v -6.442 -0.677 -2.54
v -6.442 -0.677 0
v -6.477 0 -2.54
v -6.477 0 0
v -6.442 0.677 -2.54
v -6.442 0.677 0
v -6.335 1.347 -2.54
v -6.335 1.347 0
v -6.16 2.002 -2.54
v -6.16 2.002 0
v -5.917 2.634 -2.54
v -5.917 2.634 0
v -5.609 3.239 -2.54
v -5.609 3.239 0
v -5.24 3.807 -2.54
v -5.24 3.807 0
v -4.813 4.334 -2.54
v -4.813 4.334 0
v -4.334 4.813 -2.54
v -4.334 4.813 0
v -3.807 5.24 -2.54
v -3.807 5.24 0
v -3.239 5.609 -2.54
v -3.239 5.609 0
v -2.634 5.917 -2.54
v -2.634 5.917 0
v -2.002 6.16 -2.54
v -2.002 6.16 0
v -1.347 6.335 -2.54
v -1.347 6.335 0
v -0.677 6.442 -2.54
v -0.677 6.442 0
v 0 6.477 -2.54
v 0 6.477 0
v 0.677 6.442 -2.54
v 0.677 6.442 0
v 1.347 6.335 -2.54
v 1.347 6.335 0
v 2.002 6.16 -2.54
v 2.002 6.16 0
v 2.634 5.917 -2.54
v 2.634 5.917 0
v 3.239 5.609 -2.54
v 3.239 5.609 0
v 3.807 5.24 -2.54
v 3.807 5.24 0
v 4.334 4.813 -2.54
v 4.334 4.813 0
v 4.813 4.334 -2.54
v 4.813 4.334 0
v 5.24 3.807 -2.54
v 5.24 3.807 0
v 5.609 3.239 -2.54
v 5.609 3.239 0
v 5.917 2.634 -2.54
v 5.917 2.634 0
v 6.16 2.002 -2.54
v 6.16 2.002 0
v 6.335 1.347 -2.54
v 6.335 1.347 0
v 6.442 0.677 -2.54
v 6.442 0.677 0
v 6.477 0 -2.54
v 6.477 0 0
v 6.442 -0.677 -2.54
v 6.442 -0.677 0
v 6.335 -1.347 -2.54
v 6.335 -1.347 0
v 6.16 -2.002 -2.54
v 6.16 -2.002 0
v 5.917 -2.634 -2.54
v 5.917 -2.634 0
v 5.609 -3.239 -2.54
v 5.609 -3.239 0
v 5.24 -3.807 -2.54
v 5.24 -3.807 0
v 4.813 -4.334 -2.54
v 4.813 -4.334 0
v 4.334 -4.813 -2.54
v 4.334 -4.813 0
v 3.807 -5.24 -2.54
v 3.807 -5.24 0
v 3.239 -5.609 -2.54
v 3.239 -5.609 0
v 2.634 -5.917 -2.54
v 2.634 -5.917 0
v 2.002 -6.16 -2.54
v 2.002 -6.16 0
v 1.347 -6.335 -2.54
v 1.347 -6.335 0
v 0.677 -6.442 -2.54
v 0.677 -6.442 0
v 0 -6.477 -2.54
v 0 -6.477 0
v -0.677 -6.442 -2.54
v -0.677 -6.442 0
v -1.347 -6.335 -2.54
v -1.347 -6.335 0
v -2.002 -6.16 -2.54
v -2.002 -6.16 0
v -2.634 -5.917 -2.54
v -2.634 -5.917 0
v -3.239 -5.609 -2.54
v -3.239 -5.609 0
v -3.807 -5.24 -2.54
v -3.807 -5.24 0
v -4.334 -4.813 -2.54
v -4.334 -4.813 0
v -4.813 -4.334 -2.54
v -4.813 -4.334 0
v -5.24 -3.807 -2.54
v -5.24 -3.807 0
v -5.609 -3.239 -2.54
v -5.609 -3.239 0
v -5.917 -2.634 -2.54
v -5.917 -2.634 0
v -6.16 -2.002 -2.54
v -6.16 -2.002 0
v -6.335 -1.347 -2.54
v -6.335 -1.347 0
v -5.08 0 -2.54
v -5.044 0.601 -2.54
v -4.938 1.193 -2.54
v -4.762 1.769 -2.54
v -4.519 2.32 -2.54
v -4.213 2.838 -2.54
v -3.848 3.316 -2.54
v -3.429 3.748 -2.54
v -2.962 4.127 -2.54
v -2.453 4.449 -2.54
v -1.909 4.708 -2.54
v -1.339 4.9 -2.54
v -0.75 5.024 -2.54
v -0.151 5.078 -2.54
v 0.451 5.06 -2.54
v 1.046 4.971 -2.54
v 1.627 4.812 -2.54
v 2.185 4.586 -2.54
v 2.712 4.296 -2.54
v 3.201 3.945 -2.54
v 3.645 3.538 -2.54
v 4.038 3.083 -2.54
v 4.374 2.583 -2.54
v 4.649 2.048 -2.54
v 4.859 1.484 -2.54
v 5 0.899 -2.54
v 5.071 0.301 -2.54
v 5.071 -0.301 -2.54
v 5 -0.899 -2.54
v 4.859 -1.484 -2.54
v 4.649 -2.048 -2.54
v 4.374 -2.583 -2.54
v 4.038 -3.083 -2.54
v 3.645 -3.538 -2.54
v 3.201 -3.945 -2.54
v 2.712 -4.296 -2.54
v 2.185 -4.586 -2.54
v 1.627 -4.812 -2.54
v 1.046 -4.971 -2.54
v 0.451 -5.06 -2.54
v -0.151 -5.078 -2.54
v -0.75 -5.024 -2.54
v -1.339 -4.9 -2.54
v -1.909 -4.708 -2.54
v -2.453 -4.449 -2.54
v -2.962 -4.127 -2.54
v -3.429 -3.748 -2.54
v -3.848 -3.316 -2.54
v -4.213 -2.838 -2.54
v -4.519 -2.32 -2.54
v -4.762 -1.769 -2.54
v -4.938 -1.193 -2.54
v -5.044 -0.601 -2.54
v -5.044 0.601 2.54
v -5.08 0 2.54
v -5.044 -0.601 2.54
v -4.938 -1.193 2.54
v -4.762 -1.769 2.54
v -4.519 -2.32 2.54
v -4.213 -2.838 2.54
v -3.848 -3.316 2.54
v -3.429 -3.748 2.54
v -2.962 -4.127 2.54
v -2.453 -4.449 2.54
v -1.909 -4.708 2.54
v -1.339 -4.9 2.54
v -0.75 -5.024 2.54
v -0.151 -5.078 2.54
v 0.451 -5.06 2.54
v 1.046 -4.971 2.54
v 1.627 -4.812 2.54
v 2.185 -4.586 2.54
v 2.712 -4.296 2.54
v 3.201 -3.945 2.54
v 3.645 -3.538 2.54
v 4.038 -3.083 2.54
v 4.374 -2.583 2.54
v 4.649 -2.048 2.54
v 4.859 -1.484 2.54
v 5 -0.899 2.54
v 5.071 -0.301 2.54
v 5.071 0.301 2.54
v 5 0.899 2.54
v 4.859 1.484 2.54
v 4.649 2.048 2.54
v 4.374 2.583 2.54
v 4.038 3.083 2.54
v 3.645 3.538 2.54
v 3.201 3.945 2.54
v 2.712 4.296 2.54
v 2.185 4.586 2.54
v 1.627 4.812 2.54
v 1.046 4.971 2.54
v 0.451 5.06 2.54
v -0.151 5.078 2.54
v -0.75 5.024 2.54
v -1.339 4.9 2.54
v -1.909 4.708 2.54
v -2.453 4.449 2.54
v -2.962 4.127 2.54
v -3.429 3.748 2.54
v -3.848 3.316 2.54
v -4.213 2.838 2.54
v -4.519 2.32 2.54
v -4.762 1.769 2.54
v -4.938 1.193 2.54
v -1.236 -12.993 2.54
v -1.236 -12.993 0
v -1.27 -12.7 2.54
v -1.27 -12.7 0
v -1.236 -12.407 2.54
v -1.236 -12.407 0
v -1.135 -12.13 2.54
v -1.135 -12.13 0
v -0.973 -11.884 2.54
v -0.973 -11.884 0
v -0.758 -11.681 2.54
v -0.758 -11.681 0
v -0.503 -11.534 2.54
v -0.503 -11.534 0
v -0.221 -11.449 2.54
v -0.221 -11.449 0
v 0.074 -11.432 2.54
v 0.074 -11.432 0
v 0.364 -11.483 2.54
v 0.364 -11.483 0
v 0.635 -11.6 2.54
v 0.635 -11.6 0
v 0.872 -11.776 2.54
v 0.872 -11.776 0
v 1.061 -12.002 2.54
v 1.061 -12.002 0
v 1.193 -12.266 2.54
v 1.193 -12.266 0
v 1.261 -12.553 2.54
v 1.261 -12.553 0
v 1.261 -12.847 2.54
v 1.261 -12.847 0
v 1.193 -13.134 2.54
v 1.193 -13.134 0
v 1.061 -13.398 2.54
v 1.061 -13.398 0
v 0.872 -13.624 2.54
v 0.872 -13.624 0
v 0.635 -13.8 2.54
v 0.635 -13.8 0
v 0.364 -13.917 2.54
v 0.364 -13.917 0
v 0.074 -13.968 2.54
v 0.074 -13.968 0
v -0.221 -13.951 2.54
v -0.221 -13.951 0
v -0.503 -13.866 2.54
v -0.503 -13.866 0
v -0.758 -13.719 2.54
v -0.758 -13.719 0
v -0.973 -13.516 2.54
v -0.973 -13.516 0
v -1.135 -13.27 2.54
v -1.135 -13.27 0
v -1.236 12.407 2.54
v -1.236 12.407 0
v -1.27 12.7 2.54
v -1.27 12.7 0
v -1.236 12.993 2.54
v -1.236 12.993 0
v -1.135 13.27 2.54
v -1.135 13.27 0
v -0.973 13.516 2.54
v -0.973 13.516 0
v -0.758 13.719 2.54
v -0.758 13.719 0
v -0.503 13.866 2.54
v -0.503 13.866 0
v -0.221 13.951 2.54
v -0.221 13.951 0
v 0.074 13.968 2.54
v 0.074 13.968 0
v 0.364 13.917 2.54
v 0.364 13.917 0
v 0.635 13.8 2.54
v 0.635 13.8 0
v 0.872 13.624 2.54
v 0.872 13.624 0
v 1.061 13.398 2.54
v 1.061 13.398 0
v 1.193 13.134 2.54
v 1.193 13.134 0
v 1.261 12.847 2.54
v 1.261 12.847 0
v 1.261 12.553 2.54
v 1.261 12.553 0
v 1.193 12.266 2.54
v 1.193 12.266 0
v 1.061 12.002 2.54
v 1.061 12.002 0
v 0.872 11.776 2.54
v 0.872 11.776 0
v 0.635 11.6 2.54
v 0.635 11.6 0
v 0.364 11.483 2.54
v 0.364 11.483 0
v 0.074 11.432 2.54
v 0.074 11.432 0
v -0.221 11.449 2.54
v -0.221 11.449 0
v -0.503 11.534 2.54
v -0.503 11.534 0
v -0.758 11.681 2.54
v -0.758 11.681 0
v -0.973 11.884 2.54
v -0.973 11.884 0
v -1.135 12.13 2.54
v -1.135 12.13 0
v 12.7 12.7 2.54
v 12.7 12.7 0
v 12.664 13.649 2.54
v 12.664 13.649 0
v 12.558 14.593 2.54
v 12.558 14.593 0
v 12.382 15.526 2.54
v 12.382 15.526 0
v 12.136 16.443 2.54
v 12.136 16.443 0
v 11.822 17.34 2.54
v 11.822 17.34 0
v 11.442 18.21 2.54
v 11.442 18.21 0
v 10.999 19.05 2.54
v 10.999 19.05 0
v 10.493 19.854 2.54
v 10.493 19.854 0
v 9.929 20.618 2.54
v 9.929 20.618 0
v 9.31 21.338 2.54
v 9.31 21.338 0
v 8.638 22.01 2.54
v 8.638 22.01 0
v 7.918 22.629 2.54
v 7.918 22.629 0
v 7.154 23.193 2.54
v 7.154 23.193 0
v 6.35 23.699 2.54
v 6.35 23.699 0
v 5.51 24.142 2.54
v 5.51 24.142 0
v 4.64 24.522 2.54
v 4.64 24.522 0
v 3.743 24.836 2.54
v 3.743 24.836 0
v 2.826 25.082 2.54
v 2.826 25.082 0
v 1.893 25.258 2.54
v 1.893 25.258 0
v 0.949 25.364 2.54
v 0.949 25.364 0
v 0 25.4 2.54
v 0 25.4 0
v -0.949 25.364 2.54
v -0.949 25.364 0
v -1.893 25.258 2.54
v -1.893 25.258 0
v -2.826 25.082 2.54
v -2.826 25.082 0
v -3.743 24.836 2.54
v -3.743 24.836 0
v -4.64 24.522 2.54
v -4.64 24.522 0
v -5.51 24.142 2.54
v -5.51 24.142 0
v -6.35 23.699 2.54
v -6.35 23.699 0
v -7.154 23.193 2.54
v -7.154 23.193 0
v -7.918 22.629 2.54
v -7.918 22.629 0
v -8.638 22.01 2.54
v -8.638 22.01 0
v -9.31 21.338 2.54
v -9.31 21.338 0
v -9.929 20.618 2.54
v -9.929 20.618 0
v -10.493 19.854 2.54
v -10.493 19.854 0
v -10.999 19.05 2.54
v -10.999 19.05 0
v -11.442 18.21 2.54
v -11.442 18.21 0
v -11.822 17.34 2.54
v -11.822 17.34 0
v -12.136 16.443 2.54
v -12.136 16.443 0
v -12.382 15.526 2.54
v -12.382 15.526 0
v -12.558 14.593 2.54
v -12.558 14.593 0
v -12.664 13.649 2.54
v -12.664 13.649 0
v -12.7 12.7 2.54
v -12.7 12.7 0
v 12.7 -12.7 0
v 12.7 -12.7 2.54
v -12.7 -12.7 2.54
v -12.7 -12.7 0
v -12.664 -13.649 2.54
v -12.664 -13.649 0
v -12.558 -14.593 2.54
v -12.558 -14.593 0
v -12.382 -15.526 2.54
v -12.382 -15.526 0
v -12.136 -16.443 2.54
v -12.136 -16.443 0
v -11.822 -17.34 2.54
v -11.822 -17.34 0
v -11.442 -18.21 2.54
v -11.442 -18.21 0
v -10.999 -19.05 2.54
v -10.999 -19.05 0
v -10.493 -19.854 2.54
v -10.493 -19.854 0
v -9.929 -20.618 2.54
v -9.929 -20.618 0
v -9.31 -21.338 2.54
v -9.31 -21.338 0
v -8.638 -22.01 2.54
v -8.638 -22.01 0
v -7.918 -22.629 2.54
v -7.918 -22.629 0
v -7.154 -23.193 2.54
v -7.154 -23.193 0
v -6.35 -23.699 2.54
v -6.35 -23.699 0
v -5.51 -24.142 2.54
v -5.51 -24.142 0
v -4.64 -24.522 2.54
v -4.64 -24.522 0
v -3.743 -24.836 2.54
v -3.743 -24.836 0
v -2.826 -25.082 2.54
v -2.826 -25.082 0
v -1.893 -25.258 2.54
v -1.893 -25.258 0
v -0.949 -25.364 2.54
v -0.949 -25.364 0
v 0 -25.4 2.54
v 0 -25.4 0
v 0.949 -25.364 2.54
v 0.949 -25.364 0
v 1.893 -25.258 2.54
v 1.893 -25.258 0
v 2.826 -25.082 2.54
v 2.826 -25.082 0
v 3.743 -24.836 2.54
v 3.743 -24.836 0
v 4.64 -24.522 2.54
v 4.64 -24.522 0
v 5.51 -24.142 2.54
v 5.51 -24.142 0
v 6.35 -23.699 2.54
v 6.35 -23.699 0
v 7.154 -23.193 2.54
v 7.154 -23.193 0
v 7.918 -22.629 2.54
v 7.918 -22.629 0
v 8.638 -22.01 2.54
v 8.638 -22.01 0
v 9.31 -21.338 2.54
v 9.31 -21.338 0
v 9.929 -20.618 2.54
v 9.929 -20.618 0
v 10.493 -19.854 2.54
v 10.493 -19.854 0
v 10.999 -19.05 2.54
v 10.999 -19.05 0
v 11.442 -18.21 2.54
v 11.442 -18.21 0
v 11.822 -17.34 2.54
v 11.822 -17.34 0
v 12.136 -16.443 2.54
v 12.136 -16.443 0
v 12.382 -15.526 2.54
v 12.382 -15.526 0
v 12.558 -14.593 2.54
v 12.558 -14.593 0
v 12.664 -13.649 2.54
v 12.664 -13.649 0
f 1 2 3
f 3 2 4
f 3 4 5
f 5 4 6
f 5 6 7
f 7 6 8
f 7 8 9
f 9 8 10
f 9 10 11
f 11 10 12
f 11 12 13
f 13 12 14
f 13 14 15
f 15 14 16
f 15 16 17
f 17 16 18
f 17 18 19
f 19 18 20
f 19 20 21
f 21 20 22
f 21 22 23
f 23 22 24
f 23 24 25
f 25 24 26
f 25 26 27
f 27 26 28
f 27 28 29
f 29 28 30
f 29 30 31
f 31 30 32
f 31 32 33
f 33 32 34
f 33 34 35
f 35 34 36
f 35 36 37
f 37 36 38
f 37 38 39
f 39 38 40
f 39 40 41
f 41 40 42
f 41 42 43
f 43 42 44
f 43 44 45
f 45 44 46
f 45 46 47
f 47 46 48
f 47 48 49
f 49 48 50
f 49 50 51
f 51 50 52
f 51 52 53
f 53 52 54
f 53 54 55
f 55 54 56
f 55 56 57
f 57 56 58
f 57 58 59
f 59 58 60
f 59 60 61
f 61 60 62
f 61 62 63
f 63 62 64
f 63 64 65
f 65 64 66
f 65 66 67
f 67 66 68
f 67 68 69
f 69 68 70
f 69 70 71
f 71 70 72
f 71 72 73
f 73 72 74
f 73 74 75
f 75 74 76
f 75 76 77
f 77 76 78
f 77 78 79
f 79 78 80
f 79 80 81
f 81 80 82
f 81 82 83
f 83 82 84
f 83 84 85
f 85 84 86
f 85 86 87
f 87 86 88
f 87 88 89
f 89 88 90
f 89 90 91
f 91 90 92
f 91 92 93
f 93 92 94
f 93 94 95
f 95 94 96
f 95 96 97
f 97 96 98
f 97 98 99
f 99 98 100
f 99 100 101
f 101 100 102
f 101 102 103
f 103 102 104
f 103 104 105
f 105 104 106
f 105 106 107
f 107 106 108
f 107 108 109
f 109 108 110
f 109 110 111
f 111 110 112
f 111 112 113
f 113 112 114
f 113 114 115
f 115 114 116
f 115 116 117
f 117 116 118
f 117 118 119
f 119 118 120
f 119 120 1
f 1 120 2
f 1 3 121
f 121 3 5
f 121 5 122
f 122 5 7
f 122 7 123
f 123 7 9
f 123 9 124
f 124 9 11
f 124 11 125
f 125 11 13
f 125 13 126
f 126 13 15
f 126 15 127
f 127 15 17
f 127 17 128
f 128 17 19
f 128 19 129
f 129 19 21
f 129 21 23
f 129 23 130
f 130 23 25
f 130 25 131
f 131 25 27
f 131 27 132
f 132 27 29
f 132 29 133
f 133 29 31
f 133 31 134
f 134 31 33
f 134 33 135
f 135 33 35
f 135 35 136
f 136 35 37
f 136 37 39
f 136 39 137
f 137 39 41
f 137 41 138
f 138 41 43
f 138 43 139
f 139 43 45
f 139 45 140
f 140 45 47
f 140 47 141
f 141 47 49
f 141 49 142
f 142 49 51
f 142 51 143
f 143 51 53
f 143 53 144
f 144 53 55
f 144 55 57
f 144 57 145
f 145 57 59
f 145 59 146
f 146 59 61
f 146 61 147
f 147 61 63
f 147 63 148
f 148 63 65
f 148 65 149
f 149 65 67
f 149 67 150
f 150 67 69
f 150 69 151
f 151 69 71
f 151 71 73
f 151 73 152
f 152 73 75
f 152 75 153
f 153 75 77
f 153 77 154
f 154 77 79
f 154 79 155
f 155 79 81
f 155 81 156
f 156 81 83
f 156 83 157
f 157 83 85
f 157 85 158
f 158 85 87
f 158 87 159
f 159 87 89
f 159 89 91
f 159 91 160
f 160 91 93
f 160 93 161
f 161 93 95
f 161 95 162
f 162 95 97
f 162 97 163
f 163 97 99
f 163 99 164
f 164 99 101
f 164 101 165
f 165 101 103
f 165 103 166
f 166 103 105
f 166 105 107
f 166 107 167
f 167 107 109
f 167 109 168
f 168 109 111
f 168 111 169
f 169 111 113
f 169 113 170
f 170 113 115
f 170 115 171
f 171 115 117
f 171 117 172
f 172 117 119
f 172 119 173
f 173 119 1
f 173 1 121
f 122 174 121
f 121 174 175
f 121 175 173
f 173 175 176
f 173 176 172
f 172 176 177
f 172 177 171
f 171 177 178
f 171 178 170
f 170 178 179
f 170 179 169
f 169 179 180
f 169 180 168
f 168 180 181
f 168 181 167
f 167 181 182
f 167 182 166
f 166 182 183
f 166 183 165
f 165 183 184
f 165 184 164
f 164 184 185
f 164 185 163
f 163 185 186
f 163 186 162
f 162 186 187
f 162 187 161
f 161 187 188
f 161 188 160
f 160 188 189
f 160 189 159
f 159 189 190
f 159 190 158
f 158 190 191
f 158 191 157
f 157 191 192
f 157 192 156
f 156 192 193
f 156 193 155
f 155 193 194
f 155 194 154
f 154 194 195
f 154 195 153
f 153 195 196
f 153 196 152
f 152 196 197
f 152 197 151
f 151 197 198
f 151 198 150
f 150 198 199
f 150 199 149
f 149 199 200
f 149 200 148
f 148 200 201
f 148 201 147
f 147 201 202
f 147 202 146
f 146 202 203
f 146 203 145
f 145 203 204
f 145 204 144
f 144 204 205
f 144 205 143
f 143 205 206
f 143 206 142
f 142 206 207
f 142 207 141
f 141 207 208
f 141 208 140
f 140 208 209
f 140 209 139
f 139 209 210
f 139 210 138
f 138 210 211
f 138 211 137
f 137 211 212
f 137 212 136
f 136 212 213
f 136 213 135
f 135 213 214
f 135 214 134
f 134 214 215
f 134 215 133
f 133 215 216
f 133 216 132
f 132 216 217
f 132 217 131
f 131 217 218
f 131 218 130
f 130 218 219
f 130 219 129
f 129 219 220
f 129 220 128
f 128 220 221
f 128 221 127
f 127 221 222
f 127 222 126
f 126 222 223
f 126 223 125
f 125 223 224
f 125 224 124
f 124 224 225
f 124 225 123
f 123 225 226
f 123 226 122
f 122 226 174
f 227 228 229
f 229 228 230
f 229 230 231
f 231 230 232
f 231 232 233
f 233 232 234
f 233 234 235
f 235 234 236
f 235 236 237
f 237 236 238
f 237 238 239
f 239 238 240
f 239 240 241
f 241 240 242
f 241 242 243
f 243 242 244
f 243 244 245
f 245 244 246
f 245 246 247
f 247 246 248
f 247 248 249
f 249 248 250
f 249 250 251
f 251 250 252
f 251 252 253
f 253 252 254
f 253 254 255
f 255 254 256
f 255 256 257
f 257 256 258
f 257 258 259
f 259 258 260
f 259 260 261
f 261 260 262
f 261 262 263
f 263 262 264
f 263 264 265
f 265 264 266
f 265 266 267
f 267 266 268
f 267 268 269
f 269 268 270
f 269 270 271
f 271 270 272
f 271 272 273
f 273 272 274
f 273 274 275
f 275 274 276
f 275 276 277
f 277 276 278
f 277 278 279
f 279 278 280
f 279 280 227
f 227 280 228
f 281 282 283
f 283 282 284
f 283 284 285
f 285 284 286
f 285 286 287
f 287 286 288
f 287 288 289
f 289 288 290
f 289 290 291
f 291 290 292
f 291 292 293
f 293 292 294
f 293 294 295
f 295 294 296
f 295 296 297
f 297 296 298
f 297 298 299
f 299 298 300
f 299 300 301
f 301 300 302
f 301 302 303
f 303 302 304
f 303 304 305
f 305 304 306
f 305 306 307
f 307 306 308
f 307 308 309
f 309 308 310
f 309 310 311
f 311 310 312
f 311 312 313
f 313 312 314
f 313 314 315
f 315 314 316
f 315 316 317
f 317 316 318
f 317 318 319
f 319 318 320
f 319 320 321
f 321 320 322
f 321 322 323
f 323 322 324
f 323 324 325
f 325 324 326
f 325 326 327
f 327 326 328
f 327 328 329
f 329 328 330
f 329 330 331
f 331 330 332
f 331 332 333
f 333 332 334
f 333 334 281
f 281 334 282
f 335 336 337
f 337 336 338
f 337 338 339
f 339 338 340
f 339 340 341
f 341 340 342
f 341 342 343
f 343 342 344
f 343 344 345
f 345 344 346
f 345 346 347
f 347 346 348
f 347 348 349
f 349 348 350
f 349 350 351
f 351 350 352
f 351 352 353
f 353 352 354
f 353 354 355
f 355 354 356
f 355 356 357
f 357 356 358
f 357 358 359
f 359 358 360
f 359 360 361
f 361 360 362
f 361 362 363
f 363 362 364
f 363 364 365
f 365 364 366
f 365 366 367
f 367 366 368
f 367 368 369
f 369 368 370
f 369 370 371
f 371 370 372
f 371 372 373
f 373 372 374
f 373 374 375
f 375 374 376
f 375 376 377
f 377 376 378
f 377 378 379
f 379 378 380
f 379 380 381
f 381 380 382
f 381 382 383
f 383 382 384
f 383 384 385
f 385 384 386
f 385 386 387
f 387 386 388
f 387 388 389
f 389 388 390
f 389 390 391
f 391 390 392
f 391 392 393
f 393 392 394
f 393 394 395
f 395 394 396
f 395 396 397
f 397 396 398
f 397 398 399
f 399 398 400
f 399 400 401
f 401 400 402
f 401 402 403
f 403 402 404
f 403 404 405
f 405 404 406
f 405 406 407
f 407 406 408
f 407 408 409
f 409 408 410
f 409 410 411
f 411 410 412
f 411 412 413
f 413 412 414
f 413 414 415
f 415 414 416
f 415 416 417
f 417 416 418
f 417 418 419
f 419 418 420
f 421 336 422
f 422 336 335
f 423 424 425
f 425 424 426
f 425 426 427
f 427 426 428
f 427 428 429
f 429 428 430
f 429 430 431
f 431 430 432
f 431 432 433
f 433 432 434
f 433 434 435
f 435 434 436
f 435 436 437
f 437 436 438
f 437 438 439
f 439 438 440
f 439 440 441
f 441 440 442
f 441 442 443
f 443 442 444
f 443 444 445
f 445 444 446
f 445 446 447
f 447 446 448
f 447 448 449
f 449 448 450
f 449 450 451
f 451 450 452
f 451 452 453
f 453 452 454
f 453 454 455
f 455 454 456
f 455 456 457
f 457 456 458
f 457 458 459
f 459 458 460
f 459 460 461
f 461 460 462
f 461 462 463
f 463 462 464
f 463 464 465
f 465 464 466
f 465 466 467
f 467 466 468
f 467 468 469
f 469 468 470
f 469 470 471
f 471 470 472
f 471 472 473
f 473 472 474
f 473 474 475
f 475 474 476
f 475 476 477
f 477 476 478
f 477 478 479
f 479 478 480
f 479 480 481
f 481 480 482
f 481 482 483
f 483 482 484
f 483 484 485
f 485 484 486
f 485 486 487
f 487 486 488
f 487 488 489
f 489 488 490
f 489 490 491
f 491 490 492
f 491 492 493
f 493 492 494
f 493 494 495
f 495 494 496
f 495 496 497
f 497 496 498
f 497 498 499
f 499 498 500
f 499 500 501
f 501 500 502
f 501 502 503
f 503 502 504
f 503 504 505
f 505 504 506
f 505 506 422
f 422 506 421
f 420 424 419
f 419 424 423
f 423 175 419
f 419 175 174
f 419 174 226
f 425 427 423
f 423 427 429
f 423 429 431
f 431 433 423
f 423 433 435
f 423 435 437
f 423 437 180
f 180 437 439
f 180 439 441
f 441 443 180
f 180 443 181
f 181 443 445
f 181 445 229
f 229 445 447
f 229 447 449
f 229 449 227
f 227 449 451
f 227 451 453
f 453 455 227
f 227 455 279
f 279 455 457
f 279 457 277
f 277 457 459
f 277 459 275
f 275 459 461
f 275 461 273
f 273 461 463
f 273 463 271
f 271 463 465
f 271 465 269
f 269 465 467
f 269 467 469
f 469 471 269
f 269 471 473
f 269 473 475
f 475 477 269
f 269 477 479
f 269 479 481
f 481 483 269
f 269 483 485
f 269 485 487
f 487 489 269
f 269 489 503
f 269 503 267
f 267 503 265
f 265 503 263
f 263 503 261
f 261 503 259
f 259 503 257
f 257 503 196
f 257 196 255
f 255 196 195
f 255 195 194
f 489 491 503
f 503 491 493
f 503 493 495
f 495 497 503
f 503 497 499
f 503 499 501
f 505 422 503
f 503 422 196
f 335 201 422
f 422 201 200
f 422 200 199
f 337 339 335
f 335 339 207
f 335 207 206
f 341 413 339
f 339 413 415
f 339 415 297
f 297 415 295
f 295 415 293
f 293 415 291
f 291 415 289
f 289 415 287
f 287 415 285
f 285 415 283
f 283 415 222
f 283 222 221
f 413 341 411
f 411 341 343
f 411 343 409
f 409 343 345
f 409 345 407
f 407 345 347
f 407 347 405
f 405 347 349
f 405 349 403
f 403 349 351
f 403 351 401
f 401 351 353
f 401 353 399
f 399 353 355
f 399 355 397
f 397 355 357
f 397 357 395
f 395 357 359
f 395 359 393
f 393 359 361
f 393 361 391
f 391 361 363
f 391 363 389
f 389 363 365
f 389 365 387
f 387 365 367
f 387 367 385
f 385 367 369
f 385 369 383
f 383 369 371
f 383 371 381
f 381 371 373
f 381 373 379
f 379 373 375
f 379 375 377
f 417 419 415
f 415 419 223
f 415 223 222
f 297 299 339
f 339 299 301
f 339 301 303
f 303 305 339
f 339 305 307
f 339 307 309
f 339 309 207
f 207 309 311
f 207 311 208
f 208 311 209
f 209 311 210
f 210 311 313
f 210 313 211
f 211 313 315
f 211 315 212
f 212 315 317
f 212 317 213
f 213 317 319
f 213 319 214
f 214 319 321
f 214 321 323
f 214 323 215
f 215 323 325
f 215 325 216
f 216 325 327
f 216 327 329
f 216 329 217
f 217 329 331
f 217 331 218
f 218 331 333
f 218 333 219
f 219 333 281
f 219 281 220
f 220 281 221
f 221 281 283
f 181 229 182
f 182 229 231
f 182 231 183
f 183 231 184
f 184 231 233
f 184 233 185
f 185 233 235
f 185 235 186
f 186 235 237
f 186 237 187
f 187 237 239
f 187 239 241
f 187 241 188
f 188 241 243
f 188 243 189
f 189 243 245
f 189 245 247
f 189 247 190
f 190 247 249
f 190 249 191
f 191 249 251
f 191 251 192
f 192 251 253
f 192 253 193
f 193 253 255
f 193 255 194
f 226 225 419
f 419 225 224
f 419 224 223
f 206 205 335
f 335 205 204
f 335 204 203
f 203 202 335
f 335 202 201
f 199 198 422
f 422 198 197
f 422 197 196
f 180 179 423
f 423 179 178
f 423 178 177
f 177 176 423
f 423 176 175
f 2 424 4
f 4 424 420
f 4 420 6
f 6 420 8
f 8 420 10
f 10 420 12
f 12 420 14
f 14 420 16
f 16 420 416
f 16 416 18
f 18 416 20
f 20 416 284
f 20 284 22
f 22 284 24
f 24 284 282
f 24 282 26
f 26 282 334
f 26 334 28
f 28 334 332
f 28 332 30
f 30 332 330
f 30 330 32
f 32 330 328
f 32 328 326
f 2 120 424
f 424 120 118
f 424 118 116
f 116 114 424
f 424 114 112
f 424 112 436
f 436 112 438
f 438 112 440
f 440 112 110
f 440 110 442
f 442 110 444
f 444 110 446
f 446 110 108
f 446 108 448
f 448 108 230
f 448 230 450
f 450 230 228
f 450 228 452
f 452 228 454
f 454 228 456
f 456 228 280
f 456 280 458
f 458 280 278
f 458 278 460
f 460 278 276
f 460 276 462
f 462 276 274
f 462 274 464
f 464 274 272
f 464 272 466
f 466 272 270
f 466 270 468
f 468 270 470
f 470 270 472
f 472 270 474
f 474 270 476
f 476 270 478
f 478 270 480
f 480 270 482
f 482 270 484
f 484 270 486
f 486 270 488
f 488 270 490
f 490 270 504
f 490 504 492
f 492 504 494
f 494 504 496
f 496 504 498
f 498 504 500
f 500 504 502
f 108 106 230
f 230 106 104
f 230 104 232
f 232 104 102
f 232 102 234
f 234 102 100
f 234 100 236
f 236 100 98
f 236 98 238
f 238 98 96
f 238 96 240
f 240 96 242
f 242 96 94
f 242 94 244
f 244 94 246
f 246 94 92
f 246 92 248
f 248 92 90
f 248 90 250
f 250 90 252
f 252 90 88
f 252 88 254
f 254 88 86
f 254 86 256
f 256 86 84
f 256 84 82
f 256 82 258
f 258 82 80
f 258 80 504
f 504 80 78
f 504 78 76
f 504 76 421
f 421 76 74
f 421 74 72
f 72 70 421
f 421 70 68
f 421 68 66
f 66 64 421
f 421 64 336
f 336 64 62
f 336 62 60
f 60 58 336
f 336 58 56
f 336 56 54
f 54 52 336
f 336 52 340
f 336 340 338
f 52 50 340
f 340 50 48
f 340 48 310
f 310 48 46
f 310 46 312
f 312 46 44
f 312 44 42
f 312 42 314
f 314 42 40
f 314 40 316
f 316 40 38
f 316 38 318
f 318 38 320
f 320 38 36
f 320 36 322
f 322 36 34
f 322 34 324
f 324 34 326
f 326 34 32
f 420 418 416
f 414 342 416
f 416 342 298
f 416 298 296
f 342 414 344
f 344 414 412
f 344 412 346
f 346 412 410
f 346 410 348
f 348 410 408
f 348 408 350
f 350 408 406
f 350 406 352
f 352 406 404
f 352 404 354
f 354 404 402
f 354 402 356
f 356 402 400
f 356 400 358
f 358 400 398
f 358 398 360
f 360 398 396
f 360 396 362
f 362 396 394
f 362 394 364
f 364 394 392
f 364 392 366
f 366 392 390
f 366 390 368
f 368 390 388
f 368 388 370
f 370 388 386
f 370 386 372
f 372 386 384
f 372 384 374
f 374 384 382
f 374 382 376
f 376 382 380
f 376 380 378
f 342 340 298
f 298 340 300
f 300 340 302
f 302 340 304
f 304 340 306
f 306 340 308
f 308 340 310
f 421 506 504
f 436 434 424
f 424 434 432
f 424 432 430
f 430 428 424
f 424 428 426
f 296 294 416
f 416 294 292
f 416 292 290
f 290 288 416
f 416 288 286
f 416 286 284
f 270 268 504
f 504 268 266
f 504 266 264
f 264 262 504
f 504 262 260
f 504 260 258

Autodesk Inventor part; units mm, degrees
ref_plane "YZ Plane" through (0, 0, 0) normal (1, 0, 0) x (0, 1, 0)
ref_plane "XZ Plane" through (0, 0, 0) normal (0, 1, 0) x (-1, 0, 0)
ref_plane "XY Plane" through (0, 0, 0) normal (0, 0, 1) x (1, 0, 0)
sketch "Sketch1" plane through (0, 0, 0) normal (0, 0, 1) x (1, 0, 0)
  line L0 (0, 0) -> (0, 12.7) construction
  line L1 (0, 0) -> (0, -12.7) construction
  circle A0 centre (0, 12.7) radius 1.27
  circle A1 centre (0, -12.7) radius 1.27
  arc A2 (12.7, 12.7) -> (-12.7, 12.7) centre (0, 12.7) ccw
  arc A3 (-12.7, -12.7) -> (12.7, -12.7) centre (0, -12.7) ccw
  line L2 (-12.7, -12.7) -> (-12.7, 12.7)
  line L3 (12.7, 12.7) -> (12.7, -12.7)
  circle A4 centre (0, 0) radius 6.477
  circle A5 centre (0, 0) radius 5.08
  dimension "d0" = 12.7
  dimension "d1" = 12.7
  dimension "d2" = 2.54
  dimension "d3" = 2.54
  dimension "d4" = 25.4
  dimension "d5" = 25.4
  dimension "d6" = 12.954
  dimension "d7" = 10.16
extrude "Extrusion1" add sketch "Sketch1" along normal blind 2.54 contours L3 A3 L2 A2 | A4
extrude "Extrusion2" add sketch "Sketch1" against normal blind 2.54 contours A4
properties part number "bearing_bracket_cover_3DPrint"
